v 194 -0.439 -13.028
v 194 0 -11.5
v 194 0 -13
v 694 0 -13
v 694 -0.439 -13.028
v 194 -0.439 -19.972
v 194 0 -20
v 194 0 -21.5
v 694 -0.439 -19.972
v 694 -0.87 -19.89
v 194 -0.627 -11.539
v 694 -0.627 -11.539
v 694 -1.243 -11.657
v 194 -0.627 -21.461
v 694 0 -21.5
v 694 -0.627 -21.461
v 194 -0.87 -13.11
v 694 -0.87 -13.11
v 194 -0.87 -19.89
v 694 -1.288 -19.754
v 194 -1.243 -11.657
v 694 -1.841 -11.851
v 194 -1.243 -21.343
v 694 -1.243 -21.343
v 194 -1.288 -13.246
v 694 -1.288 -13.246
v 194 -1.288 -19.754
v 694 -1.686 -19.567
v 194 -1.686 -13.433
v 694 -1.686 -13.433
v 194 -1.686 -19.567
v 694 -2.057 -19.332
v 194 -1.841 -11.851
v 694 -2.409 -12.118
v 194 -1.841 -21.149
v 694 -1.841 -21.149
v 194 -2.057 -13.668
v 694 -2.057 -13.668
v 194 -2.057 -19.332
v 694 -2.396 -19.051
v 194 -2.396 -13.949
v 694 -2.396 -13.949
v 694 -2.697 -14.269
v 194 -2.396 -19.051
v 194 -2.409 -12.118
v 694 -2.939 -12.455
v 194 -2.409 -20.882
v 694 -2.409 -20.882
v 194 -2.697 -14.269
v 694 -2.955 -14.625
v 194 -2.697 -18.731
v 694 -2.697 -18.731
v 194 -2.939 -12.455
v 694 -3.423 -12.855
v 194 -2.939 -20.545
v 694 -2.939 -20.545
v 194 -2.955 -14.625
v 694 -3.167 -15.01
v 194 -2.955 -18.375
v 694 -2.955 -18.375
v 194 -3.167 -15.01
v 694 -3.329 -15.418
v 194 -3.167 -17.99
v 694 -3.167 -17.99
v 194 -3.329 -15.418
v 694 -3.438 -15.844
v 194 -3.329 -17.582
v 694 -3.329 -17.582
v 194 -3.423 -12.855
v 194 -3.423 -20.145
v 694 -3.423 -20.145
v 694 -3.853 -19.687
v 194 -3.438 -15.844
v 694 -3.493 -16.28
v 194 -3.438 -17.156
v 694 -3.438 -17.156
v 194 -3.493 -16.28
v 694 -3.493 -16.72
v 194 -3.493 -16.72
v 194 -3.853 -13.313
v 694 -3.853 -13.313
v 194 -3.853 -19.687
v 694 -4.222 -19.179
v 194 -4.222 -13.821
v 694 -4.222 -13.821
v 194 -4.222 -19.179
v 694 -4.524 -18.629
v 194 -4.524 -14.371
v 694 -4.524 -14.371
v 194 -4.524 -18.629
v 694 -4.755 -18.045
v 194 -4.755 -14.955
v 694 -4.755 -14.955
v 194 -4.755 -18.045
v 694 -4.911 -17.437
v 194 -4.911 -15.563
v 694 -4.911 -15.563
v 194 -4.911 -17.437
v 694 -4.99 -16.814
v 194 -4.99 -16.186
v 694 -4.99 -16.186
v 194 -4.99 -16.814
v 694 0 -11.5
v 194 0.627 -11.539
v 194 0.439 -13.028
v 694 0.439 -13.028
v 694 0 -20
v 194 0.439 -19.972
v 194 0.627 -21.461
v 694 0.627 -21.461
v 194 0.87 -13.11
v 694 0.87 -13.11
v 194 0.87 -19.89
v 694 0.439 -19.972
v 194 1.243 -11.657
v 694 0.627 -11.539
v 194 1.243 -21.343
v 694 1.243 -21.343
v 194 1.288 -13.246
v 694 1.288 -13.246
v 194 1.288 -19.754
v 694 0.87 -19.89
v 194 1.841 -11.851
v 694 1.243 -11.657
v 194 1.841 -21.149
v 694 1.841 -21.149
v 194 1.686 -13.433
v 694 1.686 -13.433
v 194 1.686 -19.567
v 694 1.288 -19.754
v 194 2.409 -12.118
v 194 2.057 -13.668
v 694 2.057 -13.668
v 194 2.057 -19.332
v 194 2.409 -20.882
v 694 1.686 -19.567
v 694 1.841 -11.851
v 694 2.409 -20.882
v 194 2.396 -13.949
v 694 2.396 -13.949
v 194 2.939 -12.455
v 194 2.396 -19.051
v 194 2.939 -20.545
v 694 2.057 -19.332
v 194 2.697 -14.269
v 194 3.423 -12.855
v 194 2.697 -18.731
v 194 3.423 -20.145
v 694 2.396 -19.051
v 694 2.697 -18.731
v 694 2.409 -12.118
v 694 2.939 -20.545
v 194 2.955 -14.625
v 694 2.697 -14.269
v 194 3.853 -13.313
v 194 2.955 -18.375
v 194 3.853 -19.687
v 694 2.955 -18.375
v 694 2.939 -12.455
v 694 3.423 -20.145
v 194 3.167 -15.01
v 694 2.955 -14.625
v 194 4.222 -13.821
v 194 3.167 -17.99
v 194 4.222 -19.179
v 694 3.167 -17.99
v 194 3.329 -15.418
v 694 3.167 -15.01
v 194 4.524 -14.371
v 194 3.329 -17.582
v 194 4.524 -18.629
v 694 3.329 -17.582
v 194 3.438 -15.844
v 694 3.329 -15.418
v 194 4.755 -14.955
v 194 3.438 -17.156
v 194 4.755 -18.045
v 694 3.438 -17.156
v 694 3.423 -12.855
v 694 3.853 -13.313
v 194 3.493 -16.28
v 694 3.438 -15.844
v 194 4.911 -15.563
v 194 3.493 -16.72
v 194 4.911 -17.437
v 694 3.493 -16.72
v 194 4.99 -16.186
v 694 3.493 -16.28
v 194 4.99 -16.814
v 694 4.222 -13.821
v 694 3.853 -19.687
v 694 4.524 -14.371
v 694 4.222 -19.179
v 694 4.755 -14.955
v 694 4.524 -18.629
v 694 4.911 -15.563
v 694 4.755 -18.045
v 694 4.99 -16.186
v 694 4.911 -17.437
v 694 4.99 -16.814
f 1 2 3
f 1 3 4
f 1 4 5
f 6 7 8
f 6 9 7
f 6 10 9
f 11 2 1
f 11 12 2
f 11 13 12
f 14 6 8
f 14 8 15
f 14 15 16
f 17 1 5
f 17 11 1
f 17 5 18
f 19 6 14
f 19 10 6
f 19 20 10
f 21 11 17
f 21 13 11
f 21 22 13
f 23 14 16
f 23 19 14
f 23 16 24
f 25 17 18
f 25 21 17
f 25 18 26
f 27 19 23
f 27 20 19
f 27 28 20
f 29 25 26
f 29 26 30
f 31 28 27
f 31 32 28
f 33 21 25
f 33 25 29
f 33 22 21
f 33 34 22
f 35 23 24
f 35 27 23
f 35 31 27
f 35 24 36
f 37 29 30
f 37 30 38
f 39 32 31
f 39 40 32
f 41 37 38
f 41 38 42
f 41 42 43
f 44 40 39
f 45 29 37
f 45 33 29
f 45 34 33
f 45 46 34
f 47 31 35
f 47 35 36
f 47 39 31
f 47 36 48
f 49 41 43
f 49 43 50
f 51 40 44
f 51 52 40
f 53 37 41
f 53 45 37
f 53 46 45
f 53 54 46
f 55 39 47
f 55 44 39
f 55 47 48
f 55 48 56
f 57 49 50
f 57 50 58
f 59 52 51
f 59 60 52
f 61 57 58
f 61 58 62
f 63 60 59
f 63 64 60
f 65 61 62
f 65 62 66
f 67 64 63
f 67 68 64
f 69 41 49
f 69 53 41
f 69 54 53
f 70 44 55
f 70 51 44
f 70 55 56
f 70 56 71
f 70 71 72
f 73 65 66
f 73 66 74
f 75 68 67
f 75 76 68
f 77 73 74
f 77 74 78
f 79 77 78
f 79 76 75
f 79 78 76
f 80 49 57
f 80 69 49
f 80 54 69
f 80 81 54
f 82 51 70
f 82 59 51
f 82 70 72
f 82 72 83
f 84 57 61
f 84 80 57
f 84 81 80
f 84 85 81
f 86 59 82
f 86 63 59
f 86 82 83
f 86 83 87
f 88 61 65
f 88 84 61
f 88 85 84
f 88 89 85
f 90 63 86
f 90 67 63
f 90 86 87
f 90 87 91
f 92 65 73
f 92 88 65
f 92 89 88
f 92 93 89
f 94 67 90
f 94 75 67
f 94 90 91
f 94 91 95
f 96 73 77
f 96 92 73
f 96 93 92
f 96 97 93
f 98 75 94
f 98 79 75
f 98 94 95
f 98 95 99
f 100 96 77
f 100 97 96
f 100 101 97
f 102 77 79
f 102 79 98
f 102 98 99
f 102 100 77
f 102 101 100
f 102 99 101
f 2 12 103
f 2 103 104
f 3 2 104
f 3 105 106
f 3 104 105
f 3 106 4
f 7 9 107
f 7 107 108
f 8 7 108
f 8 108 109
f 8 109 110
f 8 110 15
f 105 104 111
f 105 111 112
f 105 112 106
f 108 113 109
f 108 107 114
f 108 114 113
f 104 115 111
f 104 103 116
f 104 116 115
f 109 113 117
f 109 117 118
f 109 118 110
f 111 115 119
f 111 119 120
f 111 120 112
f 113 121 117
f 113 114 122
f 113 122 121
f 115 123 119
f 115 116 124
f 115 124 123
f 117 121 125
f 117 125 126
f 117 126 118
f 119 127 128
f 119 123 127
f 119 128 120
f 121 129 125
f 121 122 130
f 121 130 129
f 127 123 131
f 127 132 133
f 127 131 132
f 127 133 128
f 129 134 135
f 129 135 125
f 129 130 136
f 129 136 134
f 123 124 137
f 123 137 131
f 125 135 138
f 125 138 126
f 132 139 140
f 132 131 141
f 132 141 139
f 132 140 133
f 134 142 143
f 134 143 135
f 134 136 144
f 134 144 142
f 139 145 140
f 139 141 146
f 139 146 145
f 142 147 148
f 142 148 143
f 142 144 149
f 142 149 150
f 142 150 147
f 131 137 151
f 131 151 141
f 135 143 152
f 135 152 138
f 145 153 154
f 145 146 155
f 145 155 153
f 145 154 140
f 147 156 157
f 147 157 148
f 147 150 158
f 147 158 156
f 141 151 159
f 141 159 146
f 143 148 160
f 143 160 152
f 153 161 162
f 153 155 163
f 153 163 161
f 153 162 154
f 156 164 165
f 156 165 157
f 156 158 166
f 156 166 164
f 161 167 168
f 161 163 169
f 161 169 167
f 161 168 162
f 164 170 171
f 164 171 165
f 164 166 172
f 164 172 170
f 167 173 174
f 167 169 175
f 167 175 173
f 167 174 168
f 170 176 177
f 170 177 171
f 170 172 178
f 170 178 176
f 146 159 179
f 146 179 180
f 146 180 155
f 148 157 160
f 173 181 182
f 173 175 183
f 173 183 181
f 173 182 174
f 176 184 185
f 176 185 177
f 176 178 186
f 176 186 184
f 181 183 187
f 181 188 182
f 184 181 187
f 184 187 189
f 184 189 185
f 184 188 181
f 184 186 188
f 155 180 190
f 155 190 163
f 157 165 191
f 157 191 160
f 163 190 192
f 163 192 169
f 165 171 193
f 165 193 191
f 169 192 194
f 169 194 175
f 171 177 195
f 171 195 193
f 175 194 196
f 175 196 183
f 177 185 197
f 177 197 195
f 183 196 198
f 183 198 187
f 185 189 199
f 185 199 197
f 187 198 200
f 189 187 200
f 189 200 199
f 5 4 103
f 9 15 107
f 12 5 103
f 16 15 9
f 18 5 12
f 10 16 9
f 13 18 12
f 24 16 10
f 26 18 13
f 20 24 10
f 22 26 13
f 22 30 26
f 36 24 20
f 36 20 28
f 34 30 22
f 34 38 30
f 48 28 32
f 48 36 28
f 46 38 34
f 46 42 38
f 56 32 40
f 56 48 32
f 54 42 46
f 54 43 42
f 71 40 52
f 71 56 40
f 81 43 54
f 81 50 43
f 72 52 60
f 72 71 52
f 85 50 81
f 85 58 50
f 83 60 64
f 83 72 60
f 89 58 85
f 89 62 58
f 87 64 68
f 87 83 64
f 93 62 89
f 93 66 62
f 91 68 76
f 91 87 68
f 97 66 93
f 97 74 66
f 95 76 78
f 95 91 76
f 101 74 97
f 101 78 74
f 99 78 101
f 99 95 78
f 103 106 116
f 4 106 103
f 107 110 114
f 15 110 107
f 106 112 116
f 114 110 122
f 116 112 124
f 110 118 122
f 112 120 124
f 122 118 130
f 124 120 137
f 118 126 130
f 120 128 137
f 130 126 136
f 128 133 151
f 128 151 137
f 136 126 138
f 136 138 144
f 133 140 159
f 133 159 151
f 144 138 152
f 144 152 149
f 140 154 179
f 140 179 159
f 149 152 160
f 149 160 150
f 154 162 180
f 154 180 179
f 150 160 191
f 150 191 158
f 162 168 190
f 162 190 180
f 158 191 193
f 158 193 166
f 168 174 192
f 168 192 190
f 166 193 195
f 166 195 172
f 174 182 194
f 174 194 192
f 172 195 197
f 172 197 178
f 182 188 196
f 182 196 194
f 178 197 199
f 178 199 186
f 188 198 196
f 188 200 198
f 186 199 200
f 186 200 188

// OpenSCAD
// file: ../../../parameters.scad
global_clearance = 0.5;

layer_thickness = 0.3;

//Main tube diameter - hole [mm]
main_tube_outer_diameter = 25.4;
main_tube_inner_diameter = 23.05;

// Nastavení parametrů rotoru

gliding_aggle = 14;         // tenhle úhel by se zřejmě v budoucnu měl počítat z požadované klouzavosti.

rotor_blade_AOA = 1.5;      // nastavení úhlu náběhu rotorového listu

// Rotor Auto-G2
rotor_blade_rod = true;  // generovat diru pro uhlikove tycky
rotor_blade_length = 400 - 15;   // délka rotorového listu
rotor_blade_depth = 45.5;     // hloubka rotorového listu


blade_mount_length = 30;

blade_mount_width = 17;
blade_mount_thickness = 4.6;
blade_mount_screw_offset = 5; // distance of first screw from rotor end

// Testovaci maly rotor

        /*
        rotor_blade_rod = false;
        rotor_blade_length = 145;   // délka rotorového listu
        rotor_blade_depth = 45.5 * (145/385);     // hloubka rotorového listu
        blade_mount_length = 20;
        blade_mount_width = 10;
        blade_mount_thickness = 4;
        */

// konec parametru pro testovaci maly rotor

rotor_height = 180;         // výška otočného kloubu rotoru nad hlavní trubkou vírníku (odhad)
rotor_blades_count = 2;
rotor_delta_angle = 12;
rotor_blade_thickness = 5.1;

rotor_blade_naca = 2412;
rotor_blade_parts_count = 3;

blade_transition_length = 10; // length of blade transition

blade_mount_screw_distance = (16.47+11.86)/2;

/* blade_shell_thickness = 0.4;
blade_shell_thickness_inner = 0.4;
blade_shell_thickness_wire = 0.4;
blade_infill_distance = 25;
blade_infill_overlap = 0; */

/// Nastaveni pro Slic3r
blade_shell_thickness = 0.45;
blade_shell_thickness_inner = 0.43;
blade_shell_thickness_wire = 0.45;
blade_infill_distance = 20;
blade_infill_overlap = 0;


//blade_rod_position = [rotor_blade_depth/4 + 5, 0, 0];
//blade_rod_position2 = [rotor_blade_depth/4 - 5, 0, 0];

//blade_rod_position = [15, 0, 0];
//blade_rod_position2 = [4, 0.3, 0];

blade_rod1_diameter = 2.58;
blade_rod2_diameter = 2.58;
blade_rod3_diameter = 2.13;

blade_rod1_position = [3.4, 0.3, 0];
blade_rod2_position = [rotor_blade_depth/4 - 4, 0.2, 0];
blade_rod3_position = [rotor_blade_depth/4 + 3.5, 0, 0];


rotor_head_width =  30;    //Rozměr 1 v nákresu
pilon_wall_thickness = 4.2;  // Rozměr 2 v nákresu
horizontal_screw_distance = 14.5;   // Rozměr 4 v nákresu
vertical_screw_distance = 12;       // rozměr 5 v nkresu
topscrew_distance_endofpilon = 5;

rotorhead_wall_thickness = 3; // sila tistenych dilu


bearing_outer_diameter = 10.2;    // Rozměr B1 v nákresu s přídavkem na toleranci otvoru
bearing_thickness = 4;        // Rozměr B2 v nákresu
//bearing_shaft_length = 19.5;    // Rozměr B3 v nákresu, Originalni hodnota 19.5
bearing_shaft_length = 20;    // Rozměr B3 v nákresu


// nastavení parametrů motoru

engine_angle = -8;
engine_diameter = 55;
engine_offset = 55;

engine_screws_radius = 15;
engine_holes_radius = (24 + 44)/4;
engine_shatf_hole_diameter = 13;

// screw length step - minimum difference in length between two types of screws
basic_screw_length = 5;

//Screw diameter and nut for M6 [mm]
M6_screw_diameter=6.5;
M6_head_diameter = 10+0.5;
M6_head_height = 6;
M6_nut_height = 4.9;
M6_nut_diameter = 11.8;
M6_nut_pocket = 10.4;

//Screw diameter and nut for M5 [mm]
M5_screw_diameter=5.5;
M5_head_height = 5;
M5_head_diameter = 13+0.5;
M5_nut_height = 4.5;
M5_nut_diameter = 9.4;
M5_nut_pocket = 8.4;

//Screw diameter and nut for M4 [mm]
M4_screw_diameter=4.5;
M4_screw_head_height = 4;
M4_nut_height = 3.2;
M4_nut_diameter = 8.4;
M4_nut_pocket = 7.5;

//Screw diameter and nut for M3 [mm]
M3_screw_diameter = 3.2;
M3_nut_height = 2.7;
M3_nut_diameter = 6.6;
M3_screw_head_height = 3;
M3_nut_pocket = 5.6;


//Screw diameter and nut for M2,5 [mm]
M2_5_screw_diameter = 2.7;
M2_5_nut_height = 2.3;
M2_5_nut_diameter = 6;
M2_5_nut_pocket = 5.1;

//Screw diameter and nut for M2 [mm]
M2_screw_diameter = 2.0;
M2_nut_height = 1.8;
M2_nut_diameter = 4.8;
M2_nut_pocket = 3.95;


blade_mount_screw = M2_screw_diameter;
blade_mount_nut = M2_nut_diameter;


//šroub servo
Servo_screw = 1.5;
Servo_nut_height = 1;
Servo_nut_diameter = 2.7;

tail_pipes_distance = 10.16*5;
tail_pipes_diameter = M4_screw_diameter;
tail_pipes_min_wall = 3;

elevator_pitch = 2;


/// ruder parametry

rudder_height = 150;
height_bottom_part = 130;
rudder_depth_max = 200;

below_rudder_height = 30;
rudder_depth = 60;

tail_airfoil_n = 80;




//center_of_gravity_position = [main_pilon_position - tan(gliding_aggle)*rotor_height, 0, 0];


base_patern = 10.16;
////podzvozek

radius_undercarriage = 25;
vzdalenost_x = tan(20) * 131;
vzdalenost_y = (131 - radius_undercarriage)/tan(79);
uhel_y = 90 - 20;
uhel_x = 90 - 79;

maximum_printable_size = 150;


////Pitotova trubice
Pitot_tube_diameter = 4.02 + 1;
Distance_hole_from_tube = 11.92;  //vzdálenost otvoru pro připevnění od samotné trubičky


////Vlečné zařízení
tow_ring_diameter = 20;
tow_ring_thickness = 5;
tow_ring_groove = 2;
tow_ring_hole_diameter = M3_screw_diameter;

////Simoniny parametry pro nosník rotoru
base_length = 290; //delka podlozky
base_split_position = [0, 150, base_length];
base_width = 70; //sirka podlozky - vnější šířka nosníku
base_thickness = 4; //vyska podlozky
base_patern = 10;
rantl_thickness = 4; //sirka steny podlozky
rantl_height = 8;
niy=4; //pocet der podelne


// Drazak motoru

motor_holder_height = base_patern * 5;
motor_holder_thickness = 4;
motor_holder_motor_height = 25;
motor_holder_side_mount_height = base_patern*2.5;
pilon_holder_side_mount_height = base_patern*4;


// Paraetry pilonu


// pilon_height = 250 - pilon_holder_side_mount_height;
pilon_height = 180 - pilon_holder_side_mount_height;
pilot_height_separation = 120 - pilon_holder_side_mount_height;
pilon_thickness = 3;
pilon_beam_width = 10;
pilon_base_length = 60;
pilon_ring_length = 40;
pilon_ring_thickness = 3;

pilon_top_width = 20;
pilon_top_length = 20;

pilon_ring_width = 45;
pilon_ring_height_rantl = 12+0.5;
pilon_ring_height = 3;

pilon_angle = atan2(pilon_height,(base_width-pilon_top_width)/2);
echo(pilon_angle);

pilon_bottom_angle = atan2(pilot_height_separation,(base_width-pilon_ring_width)/2-pilon_thickness*1.5);
echo(pilon_bottom_angle);
pilon_top_angle = atan2(pilon_height - pilot_height_separation,(pilon_ring_width - rotor_head_width)/2 - pilon_thickness - pilon_ring_thickness);
echo(pilon_top_angle);
// main file
//@set_slicing_config(../../slicing/default.ini)

//dil pro pripevneni tazneho motoru
include <../../../parameters.scad>

translate([base_patern*20-6, 0, -base_thickness-12.5]) rotate([0, 90, 0]) difference(){
    cylinder(d=10, h = 500, $fn=$preview? 7:50);
    translate([0, 0, -0.5]) cylinder(d=10-3, h = 501, $fn=$preview? 7:50);
}
